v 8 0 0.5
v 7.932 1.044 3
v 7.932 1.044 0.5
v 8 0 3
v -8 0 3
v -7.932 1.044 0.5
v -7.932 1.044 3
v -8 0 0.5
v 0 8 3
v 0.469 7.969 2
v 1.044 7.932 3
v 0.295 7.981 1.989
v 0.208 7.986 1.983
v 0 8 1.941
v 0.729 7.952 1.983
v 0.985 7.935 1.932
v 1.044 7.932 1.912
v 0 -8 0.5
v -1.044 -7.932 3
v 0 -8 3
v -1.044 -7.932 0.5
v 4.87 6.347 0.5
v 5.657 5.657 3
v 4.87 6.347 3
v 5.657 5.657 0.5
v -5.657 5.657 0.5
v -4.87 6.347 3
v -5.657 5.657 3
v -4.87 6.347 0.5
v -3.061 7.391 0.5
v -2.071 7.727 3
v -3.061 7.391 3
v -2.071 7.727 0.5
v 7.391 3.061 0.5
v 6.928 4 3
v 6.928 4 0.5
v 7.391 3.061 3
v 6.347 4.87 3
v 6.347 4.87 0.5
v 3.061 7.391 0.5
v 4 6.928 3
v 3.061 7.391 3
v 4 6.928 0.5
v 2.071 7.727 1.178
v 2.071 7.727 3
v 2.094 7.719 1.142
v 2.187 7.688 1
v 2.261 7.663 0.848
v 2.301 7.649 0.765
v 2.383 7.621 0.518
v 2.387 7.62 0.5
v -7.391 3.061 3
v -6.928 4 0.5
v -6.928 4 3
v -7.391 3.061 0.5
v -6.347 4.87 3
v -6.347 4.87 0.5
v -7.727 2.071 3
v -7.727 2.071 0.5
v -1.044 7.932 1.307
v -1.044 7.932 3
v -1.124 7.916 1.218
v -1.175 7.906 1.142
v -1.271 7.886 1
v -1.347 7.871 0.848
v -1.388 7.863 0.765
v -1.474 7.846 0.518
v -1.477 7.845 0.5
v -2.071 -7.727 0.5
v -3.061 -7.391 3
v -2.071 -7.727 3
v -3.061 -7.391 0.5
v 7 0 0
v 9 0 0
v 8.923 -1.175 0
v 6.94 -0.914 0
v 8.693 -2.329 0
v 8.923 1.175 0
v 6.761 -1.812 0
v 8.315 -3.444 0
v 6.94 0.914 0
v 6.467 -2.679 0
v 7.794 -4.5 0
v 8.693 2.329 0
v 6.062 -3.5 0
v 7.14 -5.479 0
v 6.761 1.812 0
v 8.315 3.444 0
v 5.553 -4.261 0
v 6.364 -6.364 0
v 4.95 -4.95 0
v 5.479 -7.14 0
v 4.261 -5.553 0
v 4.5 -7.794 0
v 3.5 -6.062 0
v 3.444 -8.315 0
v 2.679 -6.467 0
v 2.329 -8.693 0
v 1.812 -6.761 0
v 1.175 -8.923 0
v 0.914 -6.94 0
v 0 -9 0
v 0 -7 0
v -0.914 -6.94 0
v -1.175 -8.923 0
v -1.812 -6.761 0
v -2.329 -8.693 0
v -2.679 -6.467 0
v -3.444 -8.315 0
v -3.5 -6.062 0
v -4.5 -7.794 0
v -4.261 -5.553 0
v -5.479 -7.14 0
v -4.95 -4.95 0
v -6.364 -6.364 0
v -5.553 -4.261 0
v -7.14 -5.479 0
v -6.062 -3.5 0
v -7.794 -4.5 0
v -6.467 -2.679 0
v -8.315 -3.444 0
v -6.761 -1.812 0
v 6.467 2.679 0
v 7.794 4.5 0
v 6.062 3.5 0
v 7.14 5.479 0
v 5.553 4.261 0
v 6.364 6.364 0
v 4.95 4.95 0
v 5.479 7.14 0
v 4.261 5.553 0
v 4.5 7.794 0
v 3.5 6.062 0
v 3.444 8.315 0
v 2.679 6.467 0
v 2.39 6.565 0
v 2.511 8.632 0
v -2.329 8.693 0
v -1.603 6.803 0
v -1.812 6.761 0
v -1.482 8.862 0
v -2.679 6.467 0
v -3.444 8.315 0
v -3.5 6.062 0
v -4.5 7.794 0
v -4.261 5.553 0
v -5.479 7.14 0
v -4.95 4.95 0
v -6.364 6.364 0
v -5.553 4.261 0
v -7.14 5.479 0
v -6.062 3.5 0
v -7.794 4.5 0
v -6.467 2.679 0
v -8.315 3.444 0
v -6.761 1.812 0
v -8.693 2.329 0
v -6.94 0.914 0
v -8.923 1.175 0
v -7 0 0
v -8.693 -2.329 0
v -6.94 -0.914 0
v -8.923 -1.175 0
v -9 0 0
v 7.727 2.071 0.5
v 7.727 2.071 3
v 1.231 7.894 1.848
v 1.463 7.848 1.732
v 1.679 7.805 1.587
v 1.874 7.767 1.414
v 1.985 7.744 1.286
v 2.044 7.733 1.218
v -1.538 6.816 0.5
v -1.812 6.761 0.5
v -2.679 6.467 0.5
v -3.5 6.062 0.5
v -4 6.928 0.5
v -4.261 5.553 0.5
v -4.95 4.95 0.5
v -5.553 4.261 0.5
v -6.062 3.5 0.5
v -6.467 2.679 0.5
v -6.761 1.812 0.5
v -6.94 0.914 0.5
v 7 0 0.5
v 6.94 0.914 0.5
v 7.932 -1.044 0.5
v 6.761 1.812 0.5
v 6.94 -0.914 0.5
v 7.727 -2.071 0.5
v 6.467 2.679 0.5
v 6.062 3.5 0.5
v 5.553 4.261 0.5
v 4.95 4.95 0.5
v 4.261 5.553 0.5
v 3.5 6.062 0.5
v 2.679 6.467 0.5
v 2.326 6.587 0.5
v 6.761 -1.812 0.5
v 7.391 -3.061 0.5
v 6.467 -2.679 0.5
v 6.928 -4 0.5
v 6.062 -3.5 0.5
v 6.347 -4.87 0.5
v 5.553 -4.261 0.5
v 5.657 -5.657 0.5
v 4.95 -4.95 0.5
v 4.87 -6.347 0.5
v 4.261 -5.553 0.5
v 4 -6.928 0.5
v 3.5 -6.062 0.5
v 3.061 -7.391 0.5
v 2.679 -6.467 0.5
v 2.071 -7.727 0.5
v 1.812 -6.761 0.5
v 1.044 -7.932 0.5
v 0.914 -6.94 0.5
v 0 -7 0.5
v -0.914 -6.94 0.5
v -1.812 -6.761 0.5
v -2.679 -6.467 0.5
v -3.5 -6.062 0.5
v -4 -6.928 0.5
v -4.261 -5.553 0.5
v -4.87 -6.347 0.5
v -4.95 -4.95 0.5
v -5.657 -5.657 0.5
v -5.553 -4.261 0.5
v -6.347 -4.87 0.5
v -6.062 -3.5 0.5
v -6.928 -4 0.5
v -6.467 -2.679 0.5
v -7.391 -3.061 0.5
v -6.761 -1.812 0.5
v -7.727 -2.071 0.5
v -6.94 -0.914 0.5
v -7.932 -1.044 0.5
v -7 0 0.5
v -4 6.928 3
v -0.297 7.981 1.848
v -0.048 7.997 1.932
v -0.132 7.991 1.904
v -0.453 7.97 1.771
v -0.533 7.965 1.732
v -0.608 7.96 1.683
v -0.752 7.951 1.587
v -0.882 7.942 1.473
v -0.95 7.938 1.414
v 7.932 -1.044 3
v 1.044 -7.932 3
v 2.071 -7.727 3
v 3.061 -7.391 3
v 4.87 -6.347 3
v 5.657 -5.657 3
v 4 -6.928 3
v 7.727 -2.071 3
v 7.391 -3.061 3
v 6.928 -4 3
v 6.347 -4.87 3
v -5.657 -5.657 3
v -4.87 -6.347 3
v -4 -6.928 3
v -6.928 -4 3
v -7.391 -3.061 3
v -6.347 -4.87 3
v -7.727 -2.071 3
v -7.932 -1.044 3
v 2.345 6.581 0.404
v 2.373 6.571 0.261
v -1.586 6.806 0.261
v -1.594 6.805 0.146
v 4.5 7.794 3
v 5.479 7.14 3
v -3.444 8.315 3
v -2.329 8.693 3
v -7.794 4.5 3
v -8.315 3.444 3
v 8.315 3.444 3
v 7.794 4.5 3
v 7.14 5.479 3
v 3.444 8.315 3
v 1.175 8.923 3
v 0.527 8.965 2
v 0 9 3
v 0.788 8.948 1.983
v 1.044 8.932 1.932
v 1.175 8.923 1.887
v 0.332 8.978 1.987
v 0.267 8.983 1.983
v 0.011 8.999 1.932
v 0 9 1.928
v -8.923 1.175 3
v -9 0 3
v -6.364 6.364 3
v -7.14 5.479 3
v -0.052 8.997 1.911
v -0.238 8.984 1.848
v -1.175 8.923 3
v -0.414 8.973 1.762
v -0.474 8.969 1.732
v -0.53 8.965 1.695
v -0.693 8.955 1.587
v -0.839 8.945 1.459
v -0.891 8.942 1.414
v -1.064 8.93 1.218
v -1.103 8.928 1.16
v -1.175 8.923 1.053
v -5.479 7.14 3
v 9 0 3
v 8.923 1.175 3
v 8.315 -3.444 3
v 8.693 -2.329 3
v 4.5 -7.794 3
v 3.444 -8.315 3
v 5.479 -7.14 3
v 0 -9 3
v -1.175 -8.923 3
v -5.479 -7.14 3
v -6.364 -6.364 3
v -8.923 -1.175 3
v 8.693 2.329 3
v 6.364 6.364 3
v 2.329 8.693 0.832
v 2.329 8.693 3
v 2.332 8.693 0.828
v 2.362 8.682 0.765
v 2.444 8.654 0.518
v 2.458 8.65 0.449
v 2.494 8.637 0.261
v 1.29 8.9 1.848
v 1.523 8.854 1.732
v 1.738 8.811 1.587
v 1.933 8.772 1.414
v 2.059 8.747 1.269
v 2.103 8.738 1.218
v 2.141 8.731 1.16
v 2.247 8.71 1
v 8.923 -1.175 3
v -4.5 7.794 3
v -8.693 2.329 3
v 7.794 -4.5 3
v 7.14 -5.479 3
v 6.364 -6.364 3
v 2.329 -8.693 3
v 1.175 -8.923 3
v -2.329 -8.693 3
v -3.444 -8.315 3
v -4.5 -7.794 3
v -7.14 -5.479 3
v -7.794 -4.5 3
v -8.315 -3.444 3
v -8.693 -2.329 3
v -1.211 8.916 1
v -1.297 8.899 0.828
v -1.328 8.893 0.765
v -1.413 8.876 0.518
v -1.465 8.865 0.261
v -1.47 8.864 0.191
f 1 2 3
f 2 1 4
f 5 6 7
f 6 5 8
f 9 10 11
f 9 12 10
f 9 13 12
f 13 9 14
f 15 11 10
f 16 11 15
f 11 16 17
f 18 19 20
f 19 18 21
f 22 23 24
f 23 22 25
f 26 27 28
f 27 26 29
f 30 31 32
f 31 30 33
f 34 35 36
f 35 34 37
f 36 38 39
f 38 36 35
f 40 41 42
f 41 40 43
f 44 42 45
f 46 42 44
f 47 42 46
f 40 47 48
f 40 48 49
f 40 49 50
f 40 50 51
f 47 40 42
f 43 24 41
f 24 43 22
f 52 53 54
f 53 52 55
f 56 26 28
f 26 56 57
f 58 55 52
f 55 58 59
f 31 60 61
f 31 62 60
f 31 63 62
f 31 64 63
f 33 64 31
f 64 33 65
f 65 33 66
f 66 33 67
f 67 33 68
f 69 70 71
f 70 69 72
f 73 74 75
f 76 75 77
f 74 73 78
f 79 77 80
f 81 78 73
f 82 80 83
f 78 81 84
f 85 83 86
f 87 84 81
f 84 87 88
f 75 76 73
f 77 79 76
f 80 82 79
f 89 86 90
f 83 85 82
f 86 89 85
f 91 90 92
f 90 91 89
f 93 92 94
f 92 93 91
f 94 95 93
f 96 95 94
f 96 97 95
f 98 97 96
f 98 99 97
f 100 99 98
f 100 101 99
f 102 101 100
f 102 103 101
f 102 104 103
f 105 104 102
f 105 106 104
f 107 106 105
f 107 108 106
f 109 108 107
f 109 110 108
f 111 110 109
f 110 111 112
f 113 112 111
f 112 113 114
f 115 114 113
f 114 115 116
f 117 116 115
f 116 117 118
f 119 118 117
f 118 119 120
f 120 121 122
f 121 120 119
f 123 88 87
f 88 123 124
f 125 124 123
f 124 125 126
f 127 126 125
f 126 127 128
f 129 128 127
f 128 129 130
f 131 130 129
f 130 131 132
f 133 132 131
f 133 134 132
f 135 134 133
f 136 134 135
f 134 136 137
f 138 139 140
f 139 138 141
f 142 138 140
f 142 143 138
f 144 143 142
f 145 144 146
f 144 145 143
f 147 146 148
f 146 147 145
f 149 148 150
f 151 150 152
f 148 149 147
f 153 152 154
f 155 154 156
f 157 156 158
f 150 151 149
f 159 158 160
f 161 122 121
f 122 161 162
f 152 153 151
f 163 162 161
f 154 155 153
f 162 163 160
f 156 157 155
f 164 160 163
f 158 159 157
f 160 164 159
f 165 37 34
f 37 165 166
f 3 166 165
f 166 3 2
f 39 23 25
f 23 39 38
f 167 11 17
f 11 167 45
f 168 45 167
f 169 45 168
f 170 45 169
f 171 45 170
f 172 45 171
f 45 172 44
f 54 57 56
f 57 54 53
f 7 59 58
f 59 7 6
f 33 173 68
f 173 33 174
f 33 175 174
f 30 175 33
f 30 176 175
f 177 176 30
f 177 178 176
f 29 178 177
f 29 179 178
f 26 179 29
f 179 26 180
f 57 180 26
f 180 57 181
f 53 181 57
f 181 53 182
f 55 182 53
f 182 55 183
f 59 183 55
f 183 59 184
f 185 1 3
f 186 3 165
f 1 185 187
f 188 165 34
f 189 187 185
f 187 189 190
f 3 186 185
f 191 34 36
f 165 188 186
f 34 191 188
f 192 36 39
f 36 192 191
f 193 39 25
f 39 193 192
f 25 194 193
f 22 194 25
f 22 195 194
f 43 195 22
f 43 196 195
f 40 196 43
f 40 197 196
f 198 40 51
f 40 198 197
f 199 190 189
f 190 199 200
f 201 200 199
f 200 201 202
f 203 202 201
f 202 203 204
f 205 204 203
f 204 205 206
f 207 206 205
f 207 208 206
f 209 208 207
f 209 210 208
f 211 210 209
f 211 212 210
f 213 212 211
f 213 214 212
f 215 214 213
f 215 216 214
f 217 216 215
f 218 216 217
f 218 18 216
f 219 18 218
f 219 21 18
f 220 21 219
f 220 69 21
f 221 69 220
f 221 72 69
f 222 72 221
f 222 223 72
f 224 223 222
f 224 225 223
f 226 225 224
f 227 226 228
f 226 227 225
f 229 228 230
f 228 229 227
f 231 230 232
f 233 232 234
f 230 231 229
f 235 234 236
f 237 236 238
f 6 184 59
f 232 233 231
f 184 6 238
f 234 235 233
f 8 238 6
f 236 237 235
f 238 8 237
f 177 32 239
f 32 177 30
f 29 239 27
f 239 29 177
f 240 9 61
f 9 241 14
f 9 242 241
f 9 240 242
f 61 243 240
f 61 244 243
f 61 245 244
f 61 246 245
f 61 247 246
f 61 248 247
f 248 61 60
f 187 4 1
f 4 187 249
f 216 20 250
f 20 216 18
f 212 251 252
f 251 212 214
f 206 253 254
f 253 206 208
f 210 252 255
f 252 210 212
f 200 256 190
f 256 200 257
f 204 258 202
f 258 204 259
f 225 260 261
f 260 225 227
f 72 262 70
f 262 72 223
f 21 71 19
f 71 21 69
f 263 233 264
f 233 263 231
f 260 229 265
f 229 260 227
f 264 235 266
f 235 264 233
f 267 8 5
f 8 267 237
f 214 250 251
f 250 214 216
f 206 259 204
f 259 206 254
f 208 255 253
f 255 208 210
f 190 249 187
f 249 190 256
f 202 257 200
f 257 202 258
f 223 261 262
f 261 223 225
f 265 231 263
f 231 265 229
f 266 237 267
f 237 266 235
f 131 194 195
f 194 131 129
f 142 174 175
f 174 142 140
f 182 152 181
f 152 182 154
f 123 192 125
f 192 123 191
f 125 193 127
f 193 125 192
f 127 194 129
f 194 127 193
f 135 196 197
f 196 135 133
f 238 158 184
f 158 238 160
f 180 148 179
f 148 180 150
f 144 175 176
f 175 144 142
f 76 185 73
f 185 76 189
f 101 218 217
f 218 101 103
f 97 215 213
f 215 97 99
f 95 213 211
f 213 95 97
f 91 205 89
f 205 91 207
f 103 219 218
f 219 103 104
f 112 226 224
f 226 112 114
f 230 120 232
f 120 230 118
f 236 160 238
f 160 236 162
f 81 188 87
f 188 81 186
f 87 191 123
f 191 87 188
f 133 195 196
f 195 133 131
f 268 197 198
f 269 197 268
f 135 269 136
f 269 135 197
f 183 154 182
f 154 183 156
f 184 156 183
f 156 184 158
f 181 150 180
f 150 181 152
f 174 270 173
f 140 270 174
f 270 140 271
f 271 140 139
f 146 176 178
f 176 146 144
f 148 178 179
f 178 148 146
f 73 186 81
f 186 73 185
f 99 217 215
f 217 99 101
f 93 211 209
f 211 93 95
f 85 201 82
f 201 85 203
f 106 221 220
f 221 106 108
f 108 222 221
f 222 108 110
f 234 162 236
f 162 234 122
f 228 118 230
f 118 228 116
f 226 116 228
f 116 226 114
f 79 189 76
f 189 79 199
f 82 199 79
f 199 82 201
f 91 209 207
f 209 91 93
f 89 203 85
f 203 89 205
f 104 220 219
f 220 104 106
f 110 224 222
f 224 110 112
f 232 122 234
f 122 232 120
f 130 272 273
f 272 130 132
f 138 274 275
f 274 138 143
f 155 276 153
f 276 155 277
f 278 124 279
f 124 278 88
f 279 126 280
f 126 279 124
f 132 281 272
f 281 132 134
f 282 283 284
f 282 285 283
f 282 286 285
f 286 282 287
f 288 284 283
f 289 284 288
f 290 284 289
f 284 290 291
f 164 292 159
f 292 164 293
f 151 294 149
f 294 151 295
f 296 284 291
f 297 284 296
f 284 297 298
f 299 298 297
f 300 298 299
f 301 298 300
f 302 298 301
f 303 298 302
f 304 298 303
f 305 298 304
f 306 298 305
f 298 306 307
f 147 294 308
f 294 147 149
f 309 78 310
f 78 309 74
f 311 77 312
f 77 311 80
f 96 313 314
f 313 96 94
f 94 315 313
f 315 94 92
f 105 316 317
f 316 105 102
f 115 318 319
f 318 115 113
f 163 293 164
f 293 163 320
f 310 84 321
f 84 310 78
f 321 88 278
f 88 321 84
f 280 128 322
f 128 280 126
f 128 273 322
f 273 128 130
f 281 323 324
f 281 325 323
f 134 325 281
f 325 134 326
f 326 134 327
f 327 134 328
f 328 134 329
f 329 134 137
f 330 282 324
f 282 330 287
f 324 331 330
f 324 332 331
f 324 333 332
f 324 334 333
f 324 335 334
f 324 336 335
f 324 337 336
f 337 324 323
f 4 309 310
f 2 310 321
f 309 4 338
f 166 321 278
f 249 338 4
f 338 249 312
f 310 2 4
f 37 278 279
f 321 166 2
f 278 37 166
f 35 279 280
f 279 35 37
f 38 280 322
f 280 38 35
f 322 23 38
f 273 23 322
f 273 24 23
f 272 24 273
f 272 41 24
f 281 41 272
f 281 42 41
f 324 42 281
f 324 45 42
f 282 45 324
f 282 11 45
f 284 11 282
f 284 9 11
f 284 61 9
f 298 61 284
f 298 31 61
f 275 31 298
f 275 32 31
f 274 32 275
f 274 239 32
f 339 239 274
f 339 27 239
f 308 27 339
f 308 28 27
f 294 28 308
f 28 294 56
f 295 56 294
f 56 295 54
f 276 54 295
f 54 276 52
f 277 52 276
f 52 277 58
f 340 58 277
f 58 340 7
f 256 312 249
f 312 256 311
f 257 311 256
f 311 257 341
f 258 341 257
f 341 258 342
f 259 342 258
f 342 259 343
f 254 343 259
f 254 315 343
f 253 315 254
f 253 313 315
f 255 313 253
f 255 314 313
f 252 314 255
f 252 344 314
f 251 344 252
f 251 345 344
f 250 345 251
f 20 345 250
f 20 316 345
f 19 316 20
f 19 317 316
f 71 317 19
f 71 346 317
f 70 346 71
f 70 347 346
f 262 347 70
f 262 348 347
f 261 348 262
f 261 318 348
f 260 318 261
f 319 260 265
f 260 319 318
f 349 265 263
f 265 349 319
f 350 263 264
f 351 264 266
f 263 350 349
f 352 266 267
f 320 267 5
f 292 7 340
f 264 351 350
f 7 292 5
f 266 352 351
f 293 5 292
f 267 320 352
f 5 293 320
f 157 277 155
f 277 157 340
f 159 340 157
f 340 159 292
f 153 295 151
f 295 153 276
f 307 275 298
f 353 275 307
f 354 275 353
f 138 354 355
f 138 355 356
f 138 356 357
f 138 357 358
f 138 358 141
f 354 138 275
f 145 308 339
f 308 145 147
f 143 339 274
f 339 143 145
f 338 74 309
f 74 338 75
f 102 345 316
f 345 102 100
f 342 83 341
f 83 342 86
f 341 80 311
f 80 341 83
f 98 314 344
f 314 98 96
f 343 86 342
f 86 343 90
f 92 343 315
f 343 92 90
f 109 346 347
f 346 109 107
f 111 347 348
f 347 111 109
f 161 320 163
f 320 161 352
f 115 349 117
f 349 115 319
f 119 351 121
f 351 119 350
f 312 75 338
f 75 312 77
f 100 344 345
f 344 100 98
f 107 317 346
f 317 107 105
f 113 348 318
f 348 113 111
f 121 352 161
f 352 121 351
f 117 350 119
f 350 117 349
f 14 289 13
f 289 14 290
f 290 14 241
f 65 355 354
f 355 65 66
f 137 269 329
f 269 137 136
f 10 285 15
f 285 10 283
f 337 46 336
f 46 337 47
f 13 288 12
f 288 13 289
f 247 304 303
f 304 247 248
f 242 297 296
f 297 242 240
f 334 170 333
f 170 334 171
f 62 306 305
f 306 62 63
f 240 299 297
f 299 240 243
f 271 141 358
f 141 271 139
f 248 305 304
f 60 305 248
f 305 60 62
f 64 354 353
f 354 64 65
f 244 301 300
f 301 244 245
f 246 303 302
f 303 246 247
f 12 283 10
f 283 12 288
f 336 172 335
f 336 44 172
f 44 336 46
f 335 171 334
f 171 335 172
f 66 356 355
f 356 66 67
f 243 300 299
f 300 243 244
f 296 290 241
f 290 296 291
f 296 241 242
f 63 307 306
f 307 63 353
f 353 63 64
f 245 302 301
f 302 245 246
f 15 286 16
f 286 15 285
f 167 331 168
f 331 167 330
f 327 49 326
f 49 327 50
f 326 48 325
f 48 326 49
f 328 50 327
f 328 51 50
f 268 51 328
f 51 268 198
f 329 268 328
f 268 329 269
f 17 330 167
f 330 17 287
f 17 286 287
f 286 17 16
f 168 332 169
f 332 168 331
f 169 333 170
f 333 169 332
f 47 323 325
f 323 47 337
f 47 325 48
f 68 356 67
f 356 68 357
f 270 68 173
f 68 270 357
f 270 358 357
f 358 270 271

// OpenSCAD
// file: ../build_environments.scad
// build_environments.scad: modules to build level sections
//

module pool(diameter=10.0, wall_height=2.0, step_width=3.0, connections=[])
{
    difference() {
        union() {
        difference() {
            cylinder(h=0.5,r1=diameter+step_width,r2=diameter+step_width,$fn=48);
            translate([0,0,-0.1])
                cylinder(h=0.7,r1=diameter,r2=diameter,$fn=48);
        }
        difference() {
            cylinder(h=wall_height,r1=diameter+step_width+1.0,r2=diameter+step_width+1.0,$fn=48);
            translate([0,0,-0.1])
                cylinder(h=wall_height+0.2,r1=diameter+step_width,r2=diameter+step_width,$fn=48);
        }
        }
    
        for (c = connections)
        {
            rotate([0,90,0]) {
                angle = atan2(c[1],c[0]);
                rotate([-angle,0,0]) {
                    cylinder(h=diameter+5.0,r1=c[2],r2=c[2],$fn=48);
                }
            }
        }
    }
}

module straight(length=10.0, width=2.0, dy1=0.0, dy2=0.0, dz=0.0)
{
    dims = [0, 0, 0, 0, 0, (dz/length)];
    matrix = [
        [ 1, dims[0], dims[1], 0 ],
        [ dims[2], 1, dims[4], 0 ],
        [ dims[5], dims[3], 1, 0 ],
        [ 0, 0, 0, 1 ]
    ];
    multmatrix(matrix)
    difference() {
        translate([dy1,0,0])
        union() {
            rotate([0,90,0]) {
                difference() {
                    cylinder(h=(length-dy1-dy2),r1=width+1.0,r2=width+1.0,$fn=24);
                    translate([0,0,-0.1])
                        cylinder(h=(length-dy1-dy2+0.2),r1=width,r2=width,$fn=24);
                }
                difference() {
                    cylinder(h=1.0,r1=width+2.0,r2=width+2.0,$fn=24);
                    translate([0,0,-0.1])
                        cylinder(h=1.2,r1=width,r2=width,$fn=24);
                }
                translate([0,0,(length-dy1-dy2)-1.0]) {
                    difference() {
                        cylinder(h=1.0,r1=width+2.0,r2=width+2.0,$fn=24);
                        translate([0,0,-0.1])
                            cylinder(h=1.2,r1=width,r2=width,$fn=24);
                    }
                }
            }
        }
        translate([0,0,-(2*width+4.0)/2])
            cube([3*length,3*length,2*width+4.0],center=true);
    }
}

module curve(p0=[0,0], center=[0,0], dir=1, angle=0.0, width=2.0)
{
    radius = sqrt((p0[0]-center[0])*(p0[0]-center[0]) + (p0[1]-center[1])*(p0[1]-center[1]));
    if (dir == 0) {
        difference() {
            rotate([0,0,-90])
            difference() {
                rotate_extrude(angle = angle, convexity = 10, $fn=32)
                    translate([radius, 0, 0])
                        circle(r = width+1.0,$fn=24);
                rotate([0,0,-1.0])
                    rotate_extrude(angle = angle+2.0, convexity = 10, $fn=32)
                        translate([radius, 0, 0])
                            circle(r = width,$fn=24);
            }
            translate([0,0,-(2*width+4.0)/2])
                cube([5*radius,5*radius,2*width+4.0],center=true);
        }
    }
    else {
        difference() {
            rotate([0,0,90])
            difference() {
                rotate_extrude(angle = -angle, convexity = 10, $fn=32)
                    translate([radius, 0, 0])
                        circle(r = width+1.0,$fn=24);
                rotate([0,0,1.0])
                    rotate_extrude(angle = -angle-2.0, convexity = 10, $fn=32)
                        translate([radius, 0, 0])
                            circle(r = width,$fn=24);
            }
            translate([0,0,-(2*width+4.0)/2])
                cube([5*radius,5*radius,2*width+4.0],center=true);
        }
    }

}

// test pool
//pool(diameter=12.0000, wall_height=3.0000, step_width=3.0000, connections=[[0.0000,-26.0000,2.0000], [23.6074,0.0000,2.0000]]);

// test straight, slope
//straight(length=26.0000, width=2.0000, dy1=11.8322, dy2=6.7082, dz=0.0000);
//straight(length=29.1549, width=12.0000, dy1=0.0000, dy2=0.0000, dz=-15.0000);

// test curve
//curve(p0=[23.6074, 0.0000], center=[23.6074, 5.0000], dir=0, angle=60.1011, width=2.0000);
//curve(p0=[33.6426, 12.4219], center=[37.9771, 9.9295], dir=1, angle=120.4627, width=2.0000);
// main file
use <../build_environments.scad>;
pool(diameter=7.0000, wall_height=3.0000, step_width=1.0000, connections=[[1.0000,17.0000,2.0000]]);
